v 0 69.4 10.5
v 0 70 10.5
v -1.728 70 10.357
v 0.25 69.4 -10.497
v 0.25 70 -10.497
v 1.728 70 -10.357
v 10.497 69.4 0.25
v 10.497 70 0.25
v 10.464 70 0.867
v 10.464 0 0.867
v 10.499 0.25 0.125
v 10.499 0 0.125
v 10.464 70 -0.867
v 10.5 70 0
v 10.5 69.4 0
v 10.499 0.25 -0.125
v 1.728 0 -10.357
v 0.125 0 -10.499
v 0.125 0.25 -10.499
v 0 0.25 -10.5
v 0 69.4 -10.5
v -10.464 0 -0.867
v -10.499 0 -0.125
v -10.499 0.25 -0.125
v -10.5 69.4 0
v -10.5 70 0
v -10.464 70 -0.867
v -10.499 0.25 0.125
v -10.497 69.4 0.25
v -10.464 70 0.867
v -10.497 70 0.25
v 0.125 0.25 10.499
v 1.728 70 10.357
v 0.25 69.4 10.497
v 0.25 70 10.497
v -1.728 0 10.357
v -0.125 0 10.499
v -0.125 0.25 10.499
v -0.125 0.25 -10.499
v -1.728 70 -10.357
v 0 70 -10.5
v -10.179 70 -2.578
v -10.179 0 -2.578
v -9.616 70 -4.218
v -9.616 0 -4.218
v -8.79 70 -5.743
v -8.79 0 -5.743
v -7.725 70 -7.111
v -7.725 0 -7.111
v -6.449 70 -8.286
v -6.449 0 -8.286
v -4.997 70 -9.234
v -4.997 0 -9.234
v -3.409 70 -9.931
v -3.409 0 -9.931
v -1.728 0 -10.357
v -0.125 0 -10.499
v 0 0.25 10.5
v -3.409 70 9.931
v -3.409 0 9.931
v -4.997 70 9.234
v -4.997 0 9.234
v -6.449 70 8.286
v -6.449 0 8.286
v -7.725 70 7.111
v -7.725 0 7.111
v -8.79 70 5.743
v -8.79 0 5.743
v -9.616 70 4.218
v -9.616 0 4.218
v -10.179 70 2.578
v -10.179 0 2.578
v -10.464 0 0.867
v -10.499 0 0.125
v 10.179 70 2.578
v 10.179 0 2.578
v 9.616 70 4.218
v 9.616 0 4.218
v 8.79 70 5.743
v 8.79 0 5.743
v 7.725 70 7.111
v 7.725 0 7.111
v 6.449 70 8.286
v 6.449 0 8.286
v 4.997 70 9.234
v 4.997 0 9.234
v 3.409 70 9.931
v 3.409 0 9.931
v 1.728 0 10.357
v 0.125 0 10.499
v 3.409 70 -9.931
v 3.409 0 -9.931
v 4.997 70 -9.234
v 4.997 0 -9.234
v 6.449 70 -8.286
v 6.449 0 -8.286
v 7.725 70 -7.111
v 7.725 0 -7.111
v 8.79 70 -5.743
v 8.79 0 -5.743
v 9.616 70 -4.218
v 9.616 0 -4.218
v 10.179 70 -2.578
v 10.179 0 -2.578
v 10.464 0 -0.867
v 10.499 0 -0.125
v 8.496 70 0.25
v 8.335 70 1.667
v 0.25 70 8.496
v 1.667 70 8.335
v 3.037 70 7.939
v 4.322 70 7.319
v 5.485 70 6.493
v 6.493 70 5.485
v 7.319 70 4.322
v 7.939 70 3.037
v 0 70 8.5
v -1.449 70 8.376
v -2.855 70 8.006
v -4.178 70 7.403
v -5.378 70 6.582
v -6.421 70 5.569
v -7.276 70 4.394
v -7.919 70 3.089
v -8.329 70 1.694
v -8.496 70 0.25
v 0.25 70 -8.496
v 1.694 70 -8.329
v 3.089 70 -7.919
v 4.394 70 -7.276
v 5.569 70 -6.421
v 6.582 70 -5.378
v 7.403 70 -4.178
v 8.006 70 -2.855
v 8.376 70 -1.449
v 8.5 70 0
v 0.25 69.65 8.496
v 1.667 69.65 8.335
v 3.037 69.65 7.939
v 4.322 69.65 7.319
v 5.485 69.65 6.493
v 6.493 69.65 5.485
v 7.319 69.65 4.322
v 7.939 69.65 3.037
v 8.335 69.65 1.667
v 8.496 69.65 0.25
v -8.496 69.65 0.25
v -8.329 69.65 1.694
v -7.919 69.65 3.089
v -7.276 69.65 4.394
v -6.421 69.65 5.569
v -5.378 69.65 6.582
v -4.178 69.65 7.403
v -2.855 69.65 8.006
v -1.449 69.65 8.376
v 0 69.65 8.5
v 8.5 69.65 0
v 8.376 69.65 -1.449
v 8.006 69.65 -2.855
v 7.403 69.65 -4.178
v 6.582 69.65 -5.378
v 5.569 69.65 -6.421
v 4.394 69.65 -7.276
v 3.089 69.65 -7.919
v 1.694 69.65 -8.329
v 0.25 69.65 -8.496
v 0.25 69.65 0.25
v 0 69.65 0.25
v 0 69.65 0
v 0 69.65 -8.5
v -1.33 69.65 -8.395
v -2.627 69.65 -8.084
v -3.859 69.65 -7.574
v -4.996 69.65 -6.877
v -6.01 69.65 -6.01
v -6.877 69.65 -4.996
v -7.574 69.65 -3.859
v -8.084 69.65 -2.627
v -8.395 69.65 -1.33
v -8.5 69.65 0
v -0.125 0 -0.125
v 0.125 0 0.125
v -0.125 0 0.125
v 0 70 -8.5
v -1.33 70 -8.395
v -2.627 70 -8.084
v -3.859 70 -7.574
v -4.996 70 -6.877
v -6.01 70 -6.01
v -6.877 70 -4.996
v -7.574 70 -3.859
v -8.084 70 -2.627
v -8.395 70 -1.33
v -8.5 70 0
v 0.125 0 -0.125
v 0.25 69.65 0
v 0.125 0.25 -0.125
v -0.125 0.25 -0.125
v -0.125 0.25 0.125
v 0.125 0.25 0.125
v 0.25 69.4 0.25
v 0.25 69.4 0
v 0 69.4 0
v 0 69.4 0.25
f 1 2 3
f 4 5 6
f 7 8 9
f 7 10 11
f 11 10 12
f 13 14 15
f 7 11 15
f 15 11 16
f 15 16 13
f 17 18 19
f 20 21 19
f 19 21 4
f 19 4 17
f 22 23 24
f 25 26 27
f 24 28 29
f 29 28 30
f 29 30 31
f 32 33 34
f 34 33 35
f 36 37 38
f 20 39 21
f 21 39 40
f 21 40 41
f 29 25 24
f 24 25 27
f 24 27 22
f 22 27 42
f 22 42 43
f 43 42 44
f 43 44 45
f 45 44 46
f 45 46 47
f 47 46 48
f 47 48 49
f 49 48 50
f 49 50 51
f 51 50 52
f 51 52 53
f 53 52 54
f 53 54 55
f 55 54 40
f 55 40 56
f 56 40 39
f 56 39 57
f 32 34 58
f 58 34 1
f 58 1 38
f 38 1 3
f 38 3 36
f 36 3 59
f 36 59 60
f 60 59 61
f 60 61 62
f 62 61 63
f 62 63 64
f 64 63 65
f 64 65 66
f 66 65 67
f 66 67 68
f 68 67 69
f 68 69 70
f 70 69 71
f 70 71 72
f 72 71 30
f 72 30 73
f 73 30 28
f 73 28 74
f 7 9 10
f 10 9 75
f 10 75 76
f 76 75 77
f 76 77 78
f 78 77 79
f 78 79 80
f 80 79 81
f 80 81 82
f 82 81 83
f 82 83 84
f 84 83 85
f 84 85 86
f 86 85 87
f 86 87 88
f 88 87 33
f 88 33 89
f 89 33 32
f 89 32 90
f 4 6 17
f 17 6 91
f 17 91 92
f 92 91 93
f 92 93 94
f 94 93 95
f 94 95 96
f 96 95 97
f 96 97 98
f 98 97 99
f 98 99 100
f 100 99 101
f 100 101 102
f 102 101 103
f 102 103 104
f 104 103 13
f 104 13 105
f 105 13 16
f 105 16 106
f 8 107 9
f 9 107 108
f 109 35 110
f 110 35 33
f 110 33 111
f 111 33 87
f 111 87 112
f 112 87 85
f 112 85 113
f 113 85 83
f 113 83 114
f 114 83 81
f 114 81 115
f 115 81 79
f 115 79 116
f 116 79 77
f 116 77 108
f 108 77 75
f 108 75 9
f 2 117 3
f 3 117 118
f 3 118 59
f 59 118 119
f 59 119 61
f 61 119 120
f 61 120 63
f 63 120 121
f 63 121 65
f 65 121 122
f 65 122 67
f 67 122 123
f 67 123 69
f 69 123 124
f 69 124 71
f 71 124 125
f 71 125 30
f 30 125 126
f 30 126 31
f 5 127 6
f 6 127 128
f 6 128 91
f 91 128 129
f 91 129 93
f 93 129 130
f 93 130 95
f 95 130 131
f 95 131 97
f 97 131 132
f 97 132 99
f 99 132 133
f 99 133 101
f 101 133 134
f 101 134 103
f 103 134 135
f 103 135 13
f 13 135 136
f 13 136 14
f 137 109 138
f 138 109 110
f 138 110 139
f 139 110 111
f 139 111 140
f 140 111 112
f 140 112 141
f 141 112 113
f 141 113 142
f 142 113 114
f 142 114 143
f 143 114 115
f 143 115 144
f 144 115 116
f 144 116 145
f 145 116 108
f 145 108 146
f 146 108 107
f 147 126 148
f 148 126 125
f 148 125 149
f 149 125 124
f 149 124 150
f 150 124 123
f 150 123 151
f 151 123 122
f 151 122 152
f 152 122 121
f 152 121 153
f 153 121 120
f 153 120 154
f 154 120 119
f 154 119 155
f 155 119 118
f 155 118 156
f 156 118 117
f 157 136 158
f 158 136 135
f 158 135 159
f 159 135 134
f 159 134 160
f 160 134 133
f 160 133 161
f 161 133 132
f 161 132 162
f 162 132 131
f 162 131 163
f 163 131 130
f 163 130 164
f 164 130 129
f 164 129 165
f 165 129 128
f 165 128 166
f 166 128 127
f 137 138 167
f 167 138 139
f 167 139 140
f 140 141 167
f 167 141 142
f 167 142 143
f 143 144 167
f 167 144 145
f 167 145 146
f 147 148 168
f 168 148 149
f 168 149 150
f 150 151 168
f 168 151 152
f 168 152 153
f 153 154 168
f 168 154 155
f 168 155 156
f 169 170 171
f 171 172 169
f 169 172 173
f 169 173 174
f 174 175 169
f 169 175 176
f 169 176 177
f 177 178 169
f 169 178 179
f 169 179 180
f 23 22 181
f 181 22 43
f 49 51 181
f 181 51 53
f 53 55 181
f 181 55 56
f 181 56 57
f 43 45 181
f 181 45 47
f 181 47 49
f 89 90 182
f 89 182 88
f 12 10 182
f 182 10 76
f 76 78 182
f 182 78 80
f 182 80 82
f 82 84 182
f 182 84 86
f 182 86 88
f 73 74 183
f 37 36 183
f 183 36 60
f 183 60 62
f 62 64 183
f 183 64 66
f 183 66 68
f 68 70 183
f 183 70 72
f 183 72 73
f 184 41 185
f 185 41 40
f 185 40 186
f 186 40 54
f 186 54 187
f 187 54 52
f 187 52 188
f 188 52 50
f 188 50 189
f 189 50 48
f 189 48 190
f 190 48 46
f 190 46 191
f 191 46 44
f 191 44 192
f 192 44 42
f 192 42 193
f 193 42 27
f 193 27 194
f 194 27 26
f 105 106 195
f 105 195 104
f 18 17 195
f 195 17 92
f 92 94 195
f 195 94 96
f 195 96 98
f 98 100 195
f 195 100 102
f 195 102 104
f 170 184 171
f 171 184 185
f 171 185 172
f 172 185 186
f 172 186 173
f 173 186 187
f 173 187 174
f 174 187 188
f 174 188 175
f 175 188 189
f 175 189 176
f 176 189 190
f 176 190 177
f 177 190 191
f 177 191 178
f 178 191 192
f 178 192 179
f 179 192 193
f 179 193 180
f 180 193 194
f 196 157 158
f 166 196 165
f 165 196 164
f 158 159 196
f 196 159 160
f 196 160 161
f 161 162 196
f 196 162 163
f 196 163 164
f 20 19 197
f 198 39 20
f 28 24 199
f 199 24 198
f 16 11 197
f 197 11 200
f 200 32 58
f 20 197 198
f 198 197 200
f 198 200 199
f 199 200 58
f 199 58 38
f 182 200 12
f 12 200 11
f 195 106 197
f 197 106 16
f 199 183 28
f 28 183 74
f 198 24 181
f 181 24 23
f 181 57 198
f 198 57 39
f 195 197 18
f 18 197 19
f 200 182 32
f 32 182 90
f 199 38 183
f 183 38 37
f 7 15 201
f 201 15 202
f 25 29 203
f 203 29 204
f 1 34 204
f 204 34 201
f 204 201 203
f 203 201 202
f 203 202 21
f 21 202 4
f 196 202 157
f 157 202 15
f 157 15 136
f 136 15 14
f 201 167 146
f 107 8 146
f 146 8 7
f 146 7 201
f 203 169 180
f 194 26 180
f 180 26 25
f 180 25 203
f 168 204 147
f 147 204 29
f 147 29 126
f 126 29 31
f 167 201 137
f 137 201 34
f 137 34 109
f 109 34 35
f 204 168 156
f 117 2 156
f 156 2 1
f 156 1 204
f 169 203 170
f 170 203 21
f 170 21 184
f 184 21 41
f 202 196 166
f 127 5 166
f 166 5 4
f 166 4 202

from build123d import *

# Parameters (mm, degrees)
SKETCH1_R               = 10.5
BOSS_EXTRUDE1_DEPTH     = 70
SKETCH2_R               = 8.5
CUT_EXTRUDE1_DEPTH      = 0.35
SKETCH3_W               = 21
SKETCH3_H               = 0.25
SKETCH3_W_2             = 0.25
SKETCH3_H_2             = 21
CUT_EXTRUDE_THIN1_DEPTH = 0.25
CUT_EXTRUDE_THIN2_START = 70
SKETCH3_2_W             = 21
SKETCH3_2_H             = 0.25
SKETCH3_2_W_2           = 0.25
SKETCH3_2_H_2           = 21
CUT_EXTRUDE_THIN2_DEPTH = 0.6


with BuildPart() as part:
    # Sketch1 → Boss-Extrude1 (new body)
    with BuildSketch(Plane(origin=(0, 0, 0), x_dir=(1, 0, 0), z_dir=(0, 1, 0))):
        Circle(SKETCH1_R)
    extrude(amount=BOSS_EXTRUDE1_DEPTH)

    # Sketch2 → Cut-Extrude1 (cut)
    with BuildSketch(Plane(origin=(0, 70, 0), x_dir=(1, 0, 0), z_dir=(0, 1, 0))):
        Circle(SKETCH2_R)
    extrude(amount=-CUT_EXTRUDE1_DEPTH, mode=Mode.SUBTRACT)

    # Sketch3 → Cut-Extrude-Thin1 (cut)
    with BuildSketch(Plane(origin=(0, 0, 0), x_dir=(1, 0, 0), z_dir=(0, 1, 0))):
        Rectangle(SKETCH3_W, SKETCH3_H)
        Rectangle(SKETCH3_W_2, SKETCH3_H_2)
    extrude(amount=CUT_EXTRUDE_THIN1_DEPTH, mode=Mode.SUBTRACT)

    # Sketch3<2> → Cut-Extrude-Thin2 (cut)
    with BuildSketch(Plane(origin=(0, 0, 0), x_dir=(1, 0, 0), z_dir=(0, 1, 0)).offset(CUT_EXTRUDE_THIN2_START)):
        with Locations((0, -0.125)):
            Rectangle(SKETCH3_2_W, SKETCH3_2_H)
        with Locations((0.125, 0)):
            Rectangle(SKETCH3_2_W_2, SKETCH3_2_H_2)
    extrude(amount=-CUT_EXTRUDE_THIN2_DEPTH, mode=Mode.SUBTRACT)


solid = part.part
